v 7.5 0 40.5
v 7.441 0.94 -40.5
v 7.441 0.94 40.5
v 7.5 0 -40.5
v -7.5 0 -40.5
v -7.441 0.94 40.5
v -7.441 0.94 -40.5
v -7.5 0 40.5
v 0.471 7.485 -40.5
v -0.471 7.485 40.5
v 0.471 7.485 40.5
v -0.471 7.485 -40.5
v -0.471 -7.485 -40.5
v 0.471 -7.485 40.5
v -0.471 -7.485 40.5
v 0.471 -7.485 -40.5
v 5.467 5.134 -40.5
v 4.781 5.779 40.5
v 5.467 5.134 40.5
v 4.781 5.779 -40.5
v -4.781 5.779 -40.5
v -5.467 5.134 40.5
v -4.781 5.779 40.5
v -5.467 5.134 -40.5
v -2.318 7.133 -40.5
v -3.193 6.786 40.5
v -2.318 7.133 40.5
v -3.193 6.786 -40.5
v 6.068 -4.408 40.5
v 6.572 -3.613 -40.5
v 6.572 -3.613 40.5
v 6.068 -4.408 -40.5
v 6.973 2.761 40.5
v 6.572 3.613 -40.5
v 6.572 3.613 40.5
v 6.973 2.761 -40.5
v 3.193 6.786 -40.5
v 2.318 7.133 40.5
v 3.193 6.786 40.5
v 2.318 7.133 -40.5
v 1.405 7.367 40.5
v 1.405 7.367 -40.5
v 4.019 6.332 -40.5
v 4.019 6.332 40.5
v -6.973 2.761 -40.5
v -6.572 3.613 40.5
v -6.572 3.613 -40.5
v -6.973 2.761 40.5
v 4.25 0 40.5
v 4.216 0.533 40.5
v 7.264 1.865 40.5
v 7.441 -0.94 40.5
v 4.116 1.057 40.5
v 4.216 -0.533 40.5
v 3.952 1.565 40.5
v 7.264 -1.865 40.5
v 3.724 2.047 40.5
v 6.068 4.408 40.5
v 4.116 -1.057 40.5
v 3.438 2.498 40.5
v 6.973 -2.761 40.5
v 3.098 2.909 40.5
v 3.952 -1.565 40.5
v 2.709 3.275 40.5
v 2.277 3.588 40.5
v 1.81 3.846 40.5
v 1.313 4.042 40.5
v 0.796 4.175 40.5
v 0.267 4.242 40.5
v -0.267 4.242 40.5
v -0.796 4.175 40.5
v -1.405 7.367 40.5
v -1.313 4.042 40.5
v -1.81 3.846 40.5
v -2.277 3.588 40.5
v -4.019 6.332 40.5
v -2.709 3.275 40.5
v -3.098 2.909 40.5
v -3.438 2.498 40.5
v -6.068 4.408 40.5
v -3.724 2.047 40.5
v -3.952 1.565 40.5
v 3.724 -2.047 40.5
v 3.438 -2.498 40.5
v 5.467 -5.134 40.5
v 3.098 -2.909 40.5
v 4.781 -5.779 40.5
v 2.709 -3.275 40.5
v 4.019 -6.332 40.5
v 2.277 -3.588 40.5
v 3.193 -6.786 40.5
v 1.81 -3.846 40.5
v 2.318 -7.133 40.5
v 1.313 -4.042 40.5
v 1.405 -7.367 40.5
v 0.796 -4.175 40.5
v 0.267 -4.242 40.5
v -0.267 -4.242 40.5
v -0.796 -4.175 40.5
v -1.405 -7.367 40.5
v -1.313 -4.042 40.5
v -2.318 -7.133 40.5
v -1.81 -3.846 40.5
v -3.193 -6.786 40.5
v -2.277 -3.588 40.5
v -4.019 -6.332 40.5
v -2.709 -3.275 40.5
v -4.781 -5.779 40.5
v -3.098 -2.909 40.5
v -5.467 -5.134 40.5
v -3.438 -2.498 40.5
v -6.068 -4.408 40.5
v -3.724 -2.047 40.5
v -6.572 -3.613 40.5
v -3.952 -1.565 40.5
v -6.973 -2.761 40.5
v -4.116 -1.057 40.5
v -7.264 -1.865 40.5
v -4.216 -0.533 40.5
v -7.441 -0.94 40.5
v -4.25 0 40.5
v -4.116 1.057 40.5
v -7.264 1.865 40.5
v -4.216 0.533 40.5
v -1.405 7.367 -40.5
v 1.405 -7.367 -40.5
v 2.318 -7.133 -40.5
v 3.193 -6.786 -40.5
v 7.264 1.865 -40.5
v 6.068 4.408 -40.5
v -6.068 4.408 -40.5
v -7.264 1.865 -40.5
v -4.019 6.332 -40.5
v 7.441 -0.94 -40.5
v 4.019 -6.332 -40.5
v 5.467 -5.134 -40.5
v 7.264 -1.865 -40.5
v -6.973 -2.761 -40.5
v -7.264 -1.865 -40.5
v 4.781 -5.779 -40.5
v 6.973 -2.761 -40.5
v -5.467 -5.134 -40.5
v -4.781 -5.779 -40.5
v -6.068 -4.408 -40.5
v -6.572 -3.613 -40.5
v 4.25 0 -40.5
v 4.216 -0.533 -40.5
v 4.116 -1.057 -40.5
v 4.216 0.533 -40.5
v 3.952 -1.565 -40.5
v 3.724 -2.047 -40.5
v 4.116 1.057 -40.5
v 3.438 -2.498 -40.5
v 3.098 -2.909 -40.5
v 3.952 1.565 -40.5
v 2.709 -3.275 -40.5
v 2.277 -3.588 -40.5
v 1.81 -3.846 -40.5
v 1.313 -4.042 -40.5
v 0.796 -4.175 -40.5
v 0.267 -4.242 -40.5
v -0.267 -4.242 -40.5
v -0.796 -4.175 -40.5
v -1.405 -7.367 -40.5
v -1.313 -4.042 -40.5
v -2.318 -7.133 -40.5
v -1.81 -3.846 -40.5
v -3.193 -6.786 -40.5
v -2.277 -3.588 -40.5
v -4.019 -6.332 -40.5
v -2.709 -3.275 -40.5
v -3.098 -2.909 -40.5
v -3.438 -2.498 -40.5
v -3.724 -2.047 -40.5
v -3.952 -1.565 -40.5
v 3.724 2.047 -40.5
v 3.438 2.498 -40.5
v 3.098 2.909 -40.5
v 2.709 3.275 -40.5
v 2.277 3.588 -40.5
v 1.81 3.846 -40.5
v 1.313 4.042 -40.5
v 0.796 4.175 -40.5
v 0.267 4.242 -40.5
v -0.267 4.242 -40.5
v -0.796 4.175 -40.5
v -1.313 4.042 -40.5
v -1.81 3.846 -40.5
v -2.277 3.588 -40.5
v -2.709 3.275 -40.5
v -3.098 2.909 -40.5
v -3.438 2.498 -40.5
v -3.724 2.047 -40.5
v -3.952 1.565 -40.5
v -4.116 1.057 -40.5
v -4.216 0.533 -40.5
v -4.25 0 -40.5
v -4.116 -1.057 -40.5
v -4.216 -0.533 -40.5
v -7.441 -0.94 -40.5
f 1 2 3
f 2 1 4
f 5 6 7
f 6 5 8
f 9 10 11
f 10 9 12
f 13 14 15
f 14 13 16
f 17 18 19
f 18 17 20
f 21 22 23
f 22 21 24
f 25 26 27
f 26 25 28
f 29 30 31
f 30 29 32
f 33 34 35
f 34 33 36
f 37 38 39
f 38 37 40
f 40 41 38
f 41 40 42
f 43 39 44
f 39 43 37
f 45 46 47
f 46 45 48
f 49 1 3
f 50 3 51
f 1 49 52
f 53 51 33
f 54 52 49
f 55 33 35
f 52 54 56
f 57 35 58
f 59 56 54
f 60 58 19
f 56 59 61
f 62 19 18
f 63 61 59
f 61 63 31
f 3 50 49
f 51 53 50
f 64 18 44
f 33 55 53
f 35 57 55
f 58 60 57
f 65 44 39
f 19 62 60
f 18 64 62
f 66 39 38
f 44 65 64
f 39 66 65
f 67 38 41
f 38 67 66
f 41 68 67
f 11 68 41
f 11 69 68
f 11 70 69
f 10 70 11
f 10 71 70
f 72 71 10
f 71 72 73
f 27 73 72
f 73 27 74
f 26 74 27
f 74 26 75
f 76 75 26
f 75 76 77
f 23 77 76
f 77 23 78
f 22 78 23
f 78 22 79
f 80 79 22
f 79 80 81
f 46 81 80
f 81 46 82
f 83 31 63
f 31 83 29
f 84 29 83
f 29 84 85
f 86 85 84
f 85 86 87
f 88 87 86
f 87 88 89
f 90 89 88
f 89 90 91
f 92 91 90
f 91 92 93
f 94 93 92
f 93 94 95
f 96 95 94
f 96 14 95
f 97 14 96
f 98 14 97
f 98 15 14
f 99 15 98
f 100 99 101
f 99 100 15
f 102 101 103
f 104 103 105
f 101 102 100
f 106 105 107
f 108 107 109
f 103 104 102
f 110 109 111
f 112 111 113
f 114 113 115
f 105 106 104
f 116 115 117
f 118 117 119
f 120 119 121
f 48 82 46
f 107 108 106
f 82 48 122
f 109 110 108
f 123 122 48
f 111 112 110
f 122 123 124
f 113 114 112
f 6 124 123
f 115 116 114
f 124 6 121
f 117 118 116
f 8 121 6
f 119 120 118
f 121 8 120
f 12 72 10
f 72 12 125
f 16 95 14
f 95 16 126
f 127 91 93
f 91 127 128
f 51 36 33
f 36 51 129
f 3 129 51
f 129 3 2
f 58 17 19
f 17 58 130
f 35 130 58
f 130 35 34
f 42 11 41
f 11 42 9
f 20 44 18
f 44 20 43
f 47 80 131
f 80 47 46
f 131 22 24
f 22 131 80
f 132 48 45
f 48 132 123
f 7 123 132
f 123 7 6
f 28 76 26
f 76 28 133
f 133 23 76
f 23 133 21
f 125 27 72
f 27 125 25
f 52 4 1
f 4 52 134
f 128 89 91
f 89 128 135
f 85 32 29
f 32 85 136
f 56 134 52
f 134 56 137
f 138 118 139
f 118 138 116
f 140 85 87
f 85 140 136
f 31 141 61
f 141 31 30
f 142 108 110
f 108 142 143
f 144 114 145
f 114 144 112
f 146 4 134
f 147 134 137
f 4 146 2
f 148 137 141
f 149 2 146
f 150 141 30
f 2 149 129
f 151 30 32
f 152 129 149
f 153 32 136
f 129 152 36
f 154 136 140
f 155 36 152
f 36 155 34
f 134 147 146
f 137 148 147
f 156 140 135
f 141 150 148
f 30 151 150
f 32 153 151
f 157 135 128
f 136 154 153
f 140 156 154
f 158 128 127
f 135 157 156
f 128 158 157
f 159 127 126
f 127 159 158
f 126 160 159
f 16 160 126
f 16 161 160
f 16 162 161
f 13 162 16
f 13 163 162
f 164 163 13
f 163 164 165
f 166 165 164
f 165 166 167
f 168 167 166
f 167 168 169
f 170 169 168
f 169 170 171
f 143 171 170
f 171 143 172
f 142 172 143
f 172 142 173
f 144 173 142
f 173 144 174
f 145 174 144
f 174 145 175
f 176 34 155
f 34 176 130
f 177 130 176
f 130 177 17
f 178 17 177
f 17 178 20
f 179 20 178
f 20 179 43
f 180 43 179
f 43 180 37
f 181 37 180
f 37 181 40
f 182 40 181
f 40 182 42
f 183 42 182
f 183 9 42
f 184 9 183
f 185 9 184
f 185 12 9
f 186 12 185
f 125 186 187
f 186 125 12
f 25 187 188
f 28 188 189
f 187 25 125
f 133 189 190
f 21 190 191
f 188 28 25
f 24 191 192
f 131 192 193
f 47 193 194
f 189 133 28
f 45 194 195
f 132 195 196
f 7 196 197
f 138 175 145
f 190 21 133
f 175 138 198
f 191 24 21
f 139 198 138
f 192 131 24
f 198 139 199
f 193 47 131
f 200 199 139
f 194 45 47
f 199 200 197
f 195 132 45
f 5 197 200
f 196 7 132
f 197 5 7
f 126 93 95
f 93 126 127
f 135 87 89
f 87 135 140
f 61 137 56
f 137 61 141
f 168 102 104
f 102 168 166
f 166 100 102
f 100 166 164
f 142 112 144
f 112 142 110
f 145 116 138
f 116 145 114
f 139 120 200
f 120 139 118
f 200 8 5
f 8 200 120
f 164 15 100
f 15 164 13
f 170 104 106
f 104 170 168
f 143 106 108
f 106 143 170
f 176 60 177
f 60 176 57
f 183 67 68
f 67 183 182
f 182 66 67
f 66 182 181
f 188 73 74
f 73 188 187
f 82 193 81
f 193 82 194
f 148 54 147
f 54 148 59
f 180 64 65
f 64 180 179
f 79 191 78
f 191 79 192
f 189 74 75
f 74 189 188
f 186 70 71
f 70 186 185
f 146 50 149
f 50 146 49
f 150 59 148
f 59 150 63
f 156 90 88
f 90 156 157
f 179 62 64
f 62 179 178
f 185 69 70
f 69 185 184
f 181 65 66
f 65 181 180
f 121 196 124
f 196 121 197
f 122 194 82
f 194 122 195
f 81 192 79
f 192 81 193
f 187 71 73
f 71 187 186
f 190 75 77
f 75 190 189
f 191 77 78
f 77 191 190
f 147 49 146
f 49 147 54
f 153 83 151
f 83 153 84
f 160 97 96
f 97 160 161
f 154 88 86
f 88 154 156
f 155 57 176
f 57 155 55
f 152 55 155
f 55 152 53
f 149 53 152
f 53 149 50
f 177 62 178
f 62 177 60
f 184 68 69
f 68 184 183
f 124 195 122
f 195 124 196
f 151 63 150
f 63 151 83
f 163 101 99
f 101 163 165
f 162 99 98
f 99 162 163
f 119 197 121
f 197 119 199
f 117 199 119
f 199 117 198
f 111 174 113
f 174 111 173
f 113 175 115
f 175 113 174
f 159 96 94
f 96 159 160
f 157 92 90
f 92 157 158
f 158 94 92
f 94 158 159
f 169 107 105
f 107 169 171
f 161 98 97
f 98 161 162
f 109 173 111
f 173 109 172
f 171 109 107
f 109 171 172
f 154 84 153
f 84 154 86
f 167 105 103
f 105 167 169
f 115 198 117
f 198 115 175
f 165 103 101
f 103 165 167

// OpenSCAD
$fn = 50;


difference() {
	union() {
		translate(v = [0, 0, -40.5000000000]) {
			cylinder(h = 81, r = 7.5000000000);
		}
	}
	union() {
		translate(v = [0, 0, -100.0000000000]) {
			cylinder(h = 200, r = 4.2500000000);
		}
	}
}
